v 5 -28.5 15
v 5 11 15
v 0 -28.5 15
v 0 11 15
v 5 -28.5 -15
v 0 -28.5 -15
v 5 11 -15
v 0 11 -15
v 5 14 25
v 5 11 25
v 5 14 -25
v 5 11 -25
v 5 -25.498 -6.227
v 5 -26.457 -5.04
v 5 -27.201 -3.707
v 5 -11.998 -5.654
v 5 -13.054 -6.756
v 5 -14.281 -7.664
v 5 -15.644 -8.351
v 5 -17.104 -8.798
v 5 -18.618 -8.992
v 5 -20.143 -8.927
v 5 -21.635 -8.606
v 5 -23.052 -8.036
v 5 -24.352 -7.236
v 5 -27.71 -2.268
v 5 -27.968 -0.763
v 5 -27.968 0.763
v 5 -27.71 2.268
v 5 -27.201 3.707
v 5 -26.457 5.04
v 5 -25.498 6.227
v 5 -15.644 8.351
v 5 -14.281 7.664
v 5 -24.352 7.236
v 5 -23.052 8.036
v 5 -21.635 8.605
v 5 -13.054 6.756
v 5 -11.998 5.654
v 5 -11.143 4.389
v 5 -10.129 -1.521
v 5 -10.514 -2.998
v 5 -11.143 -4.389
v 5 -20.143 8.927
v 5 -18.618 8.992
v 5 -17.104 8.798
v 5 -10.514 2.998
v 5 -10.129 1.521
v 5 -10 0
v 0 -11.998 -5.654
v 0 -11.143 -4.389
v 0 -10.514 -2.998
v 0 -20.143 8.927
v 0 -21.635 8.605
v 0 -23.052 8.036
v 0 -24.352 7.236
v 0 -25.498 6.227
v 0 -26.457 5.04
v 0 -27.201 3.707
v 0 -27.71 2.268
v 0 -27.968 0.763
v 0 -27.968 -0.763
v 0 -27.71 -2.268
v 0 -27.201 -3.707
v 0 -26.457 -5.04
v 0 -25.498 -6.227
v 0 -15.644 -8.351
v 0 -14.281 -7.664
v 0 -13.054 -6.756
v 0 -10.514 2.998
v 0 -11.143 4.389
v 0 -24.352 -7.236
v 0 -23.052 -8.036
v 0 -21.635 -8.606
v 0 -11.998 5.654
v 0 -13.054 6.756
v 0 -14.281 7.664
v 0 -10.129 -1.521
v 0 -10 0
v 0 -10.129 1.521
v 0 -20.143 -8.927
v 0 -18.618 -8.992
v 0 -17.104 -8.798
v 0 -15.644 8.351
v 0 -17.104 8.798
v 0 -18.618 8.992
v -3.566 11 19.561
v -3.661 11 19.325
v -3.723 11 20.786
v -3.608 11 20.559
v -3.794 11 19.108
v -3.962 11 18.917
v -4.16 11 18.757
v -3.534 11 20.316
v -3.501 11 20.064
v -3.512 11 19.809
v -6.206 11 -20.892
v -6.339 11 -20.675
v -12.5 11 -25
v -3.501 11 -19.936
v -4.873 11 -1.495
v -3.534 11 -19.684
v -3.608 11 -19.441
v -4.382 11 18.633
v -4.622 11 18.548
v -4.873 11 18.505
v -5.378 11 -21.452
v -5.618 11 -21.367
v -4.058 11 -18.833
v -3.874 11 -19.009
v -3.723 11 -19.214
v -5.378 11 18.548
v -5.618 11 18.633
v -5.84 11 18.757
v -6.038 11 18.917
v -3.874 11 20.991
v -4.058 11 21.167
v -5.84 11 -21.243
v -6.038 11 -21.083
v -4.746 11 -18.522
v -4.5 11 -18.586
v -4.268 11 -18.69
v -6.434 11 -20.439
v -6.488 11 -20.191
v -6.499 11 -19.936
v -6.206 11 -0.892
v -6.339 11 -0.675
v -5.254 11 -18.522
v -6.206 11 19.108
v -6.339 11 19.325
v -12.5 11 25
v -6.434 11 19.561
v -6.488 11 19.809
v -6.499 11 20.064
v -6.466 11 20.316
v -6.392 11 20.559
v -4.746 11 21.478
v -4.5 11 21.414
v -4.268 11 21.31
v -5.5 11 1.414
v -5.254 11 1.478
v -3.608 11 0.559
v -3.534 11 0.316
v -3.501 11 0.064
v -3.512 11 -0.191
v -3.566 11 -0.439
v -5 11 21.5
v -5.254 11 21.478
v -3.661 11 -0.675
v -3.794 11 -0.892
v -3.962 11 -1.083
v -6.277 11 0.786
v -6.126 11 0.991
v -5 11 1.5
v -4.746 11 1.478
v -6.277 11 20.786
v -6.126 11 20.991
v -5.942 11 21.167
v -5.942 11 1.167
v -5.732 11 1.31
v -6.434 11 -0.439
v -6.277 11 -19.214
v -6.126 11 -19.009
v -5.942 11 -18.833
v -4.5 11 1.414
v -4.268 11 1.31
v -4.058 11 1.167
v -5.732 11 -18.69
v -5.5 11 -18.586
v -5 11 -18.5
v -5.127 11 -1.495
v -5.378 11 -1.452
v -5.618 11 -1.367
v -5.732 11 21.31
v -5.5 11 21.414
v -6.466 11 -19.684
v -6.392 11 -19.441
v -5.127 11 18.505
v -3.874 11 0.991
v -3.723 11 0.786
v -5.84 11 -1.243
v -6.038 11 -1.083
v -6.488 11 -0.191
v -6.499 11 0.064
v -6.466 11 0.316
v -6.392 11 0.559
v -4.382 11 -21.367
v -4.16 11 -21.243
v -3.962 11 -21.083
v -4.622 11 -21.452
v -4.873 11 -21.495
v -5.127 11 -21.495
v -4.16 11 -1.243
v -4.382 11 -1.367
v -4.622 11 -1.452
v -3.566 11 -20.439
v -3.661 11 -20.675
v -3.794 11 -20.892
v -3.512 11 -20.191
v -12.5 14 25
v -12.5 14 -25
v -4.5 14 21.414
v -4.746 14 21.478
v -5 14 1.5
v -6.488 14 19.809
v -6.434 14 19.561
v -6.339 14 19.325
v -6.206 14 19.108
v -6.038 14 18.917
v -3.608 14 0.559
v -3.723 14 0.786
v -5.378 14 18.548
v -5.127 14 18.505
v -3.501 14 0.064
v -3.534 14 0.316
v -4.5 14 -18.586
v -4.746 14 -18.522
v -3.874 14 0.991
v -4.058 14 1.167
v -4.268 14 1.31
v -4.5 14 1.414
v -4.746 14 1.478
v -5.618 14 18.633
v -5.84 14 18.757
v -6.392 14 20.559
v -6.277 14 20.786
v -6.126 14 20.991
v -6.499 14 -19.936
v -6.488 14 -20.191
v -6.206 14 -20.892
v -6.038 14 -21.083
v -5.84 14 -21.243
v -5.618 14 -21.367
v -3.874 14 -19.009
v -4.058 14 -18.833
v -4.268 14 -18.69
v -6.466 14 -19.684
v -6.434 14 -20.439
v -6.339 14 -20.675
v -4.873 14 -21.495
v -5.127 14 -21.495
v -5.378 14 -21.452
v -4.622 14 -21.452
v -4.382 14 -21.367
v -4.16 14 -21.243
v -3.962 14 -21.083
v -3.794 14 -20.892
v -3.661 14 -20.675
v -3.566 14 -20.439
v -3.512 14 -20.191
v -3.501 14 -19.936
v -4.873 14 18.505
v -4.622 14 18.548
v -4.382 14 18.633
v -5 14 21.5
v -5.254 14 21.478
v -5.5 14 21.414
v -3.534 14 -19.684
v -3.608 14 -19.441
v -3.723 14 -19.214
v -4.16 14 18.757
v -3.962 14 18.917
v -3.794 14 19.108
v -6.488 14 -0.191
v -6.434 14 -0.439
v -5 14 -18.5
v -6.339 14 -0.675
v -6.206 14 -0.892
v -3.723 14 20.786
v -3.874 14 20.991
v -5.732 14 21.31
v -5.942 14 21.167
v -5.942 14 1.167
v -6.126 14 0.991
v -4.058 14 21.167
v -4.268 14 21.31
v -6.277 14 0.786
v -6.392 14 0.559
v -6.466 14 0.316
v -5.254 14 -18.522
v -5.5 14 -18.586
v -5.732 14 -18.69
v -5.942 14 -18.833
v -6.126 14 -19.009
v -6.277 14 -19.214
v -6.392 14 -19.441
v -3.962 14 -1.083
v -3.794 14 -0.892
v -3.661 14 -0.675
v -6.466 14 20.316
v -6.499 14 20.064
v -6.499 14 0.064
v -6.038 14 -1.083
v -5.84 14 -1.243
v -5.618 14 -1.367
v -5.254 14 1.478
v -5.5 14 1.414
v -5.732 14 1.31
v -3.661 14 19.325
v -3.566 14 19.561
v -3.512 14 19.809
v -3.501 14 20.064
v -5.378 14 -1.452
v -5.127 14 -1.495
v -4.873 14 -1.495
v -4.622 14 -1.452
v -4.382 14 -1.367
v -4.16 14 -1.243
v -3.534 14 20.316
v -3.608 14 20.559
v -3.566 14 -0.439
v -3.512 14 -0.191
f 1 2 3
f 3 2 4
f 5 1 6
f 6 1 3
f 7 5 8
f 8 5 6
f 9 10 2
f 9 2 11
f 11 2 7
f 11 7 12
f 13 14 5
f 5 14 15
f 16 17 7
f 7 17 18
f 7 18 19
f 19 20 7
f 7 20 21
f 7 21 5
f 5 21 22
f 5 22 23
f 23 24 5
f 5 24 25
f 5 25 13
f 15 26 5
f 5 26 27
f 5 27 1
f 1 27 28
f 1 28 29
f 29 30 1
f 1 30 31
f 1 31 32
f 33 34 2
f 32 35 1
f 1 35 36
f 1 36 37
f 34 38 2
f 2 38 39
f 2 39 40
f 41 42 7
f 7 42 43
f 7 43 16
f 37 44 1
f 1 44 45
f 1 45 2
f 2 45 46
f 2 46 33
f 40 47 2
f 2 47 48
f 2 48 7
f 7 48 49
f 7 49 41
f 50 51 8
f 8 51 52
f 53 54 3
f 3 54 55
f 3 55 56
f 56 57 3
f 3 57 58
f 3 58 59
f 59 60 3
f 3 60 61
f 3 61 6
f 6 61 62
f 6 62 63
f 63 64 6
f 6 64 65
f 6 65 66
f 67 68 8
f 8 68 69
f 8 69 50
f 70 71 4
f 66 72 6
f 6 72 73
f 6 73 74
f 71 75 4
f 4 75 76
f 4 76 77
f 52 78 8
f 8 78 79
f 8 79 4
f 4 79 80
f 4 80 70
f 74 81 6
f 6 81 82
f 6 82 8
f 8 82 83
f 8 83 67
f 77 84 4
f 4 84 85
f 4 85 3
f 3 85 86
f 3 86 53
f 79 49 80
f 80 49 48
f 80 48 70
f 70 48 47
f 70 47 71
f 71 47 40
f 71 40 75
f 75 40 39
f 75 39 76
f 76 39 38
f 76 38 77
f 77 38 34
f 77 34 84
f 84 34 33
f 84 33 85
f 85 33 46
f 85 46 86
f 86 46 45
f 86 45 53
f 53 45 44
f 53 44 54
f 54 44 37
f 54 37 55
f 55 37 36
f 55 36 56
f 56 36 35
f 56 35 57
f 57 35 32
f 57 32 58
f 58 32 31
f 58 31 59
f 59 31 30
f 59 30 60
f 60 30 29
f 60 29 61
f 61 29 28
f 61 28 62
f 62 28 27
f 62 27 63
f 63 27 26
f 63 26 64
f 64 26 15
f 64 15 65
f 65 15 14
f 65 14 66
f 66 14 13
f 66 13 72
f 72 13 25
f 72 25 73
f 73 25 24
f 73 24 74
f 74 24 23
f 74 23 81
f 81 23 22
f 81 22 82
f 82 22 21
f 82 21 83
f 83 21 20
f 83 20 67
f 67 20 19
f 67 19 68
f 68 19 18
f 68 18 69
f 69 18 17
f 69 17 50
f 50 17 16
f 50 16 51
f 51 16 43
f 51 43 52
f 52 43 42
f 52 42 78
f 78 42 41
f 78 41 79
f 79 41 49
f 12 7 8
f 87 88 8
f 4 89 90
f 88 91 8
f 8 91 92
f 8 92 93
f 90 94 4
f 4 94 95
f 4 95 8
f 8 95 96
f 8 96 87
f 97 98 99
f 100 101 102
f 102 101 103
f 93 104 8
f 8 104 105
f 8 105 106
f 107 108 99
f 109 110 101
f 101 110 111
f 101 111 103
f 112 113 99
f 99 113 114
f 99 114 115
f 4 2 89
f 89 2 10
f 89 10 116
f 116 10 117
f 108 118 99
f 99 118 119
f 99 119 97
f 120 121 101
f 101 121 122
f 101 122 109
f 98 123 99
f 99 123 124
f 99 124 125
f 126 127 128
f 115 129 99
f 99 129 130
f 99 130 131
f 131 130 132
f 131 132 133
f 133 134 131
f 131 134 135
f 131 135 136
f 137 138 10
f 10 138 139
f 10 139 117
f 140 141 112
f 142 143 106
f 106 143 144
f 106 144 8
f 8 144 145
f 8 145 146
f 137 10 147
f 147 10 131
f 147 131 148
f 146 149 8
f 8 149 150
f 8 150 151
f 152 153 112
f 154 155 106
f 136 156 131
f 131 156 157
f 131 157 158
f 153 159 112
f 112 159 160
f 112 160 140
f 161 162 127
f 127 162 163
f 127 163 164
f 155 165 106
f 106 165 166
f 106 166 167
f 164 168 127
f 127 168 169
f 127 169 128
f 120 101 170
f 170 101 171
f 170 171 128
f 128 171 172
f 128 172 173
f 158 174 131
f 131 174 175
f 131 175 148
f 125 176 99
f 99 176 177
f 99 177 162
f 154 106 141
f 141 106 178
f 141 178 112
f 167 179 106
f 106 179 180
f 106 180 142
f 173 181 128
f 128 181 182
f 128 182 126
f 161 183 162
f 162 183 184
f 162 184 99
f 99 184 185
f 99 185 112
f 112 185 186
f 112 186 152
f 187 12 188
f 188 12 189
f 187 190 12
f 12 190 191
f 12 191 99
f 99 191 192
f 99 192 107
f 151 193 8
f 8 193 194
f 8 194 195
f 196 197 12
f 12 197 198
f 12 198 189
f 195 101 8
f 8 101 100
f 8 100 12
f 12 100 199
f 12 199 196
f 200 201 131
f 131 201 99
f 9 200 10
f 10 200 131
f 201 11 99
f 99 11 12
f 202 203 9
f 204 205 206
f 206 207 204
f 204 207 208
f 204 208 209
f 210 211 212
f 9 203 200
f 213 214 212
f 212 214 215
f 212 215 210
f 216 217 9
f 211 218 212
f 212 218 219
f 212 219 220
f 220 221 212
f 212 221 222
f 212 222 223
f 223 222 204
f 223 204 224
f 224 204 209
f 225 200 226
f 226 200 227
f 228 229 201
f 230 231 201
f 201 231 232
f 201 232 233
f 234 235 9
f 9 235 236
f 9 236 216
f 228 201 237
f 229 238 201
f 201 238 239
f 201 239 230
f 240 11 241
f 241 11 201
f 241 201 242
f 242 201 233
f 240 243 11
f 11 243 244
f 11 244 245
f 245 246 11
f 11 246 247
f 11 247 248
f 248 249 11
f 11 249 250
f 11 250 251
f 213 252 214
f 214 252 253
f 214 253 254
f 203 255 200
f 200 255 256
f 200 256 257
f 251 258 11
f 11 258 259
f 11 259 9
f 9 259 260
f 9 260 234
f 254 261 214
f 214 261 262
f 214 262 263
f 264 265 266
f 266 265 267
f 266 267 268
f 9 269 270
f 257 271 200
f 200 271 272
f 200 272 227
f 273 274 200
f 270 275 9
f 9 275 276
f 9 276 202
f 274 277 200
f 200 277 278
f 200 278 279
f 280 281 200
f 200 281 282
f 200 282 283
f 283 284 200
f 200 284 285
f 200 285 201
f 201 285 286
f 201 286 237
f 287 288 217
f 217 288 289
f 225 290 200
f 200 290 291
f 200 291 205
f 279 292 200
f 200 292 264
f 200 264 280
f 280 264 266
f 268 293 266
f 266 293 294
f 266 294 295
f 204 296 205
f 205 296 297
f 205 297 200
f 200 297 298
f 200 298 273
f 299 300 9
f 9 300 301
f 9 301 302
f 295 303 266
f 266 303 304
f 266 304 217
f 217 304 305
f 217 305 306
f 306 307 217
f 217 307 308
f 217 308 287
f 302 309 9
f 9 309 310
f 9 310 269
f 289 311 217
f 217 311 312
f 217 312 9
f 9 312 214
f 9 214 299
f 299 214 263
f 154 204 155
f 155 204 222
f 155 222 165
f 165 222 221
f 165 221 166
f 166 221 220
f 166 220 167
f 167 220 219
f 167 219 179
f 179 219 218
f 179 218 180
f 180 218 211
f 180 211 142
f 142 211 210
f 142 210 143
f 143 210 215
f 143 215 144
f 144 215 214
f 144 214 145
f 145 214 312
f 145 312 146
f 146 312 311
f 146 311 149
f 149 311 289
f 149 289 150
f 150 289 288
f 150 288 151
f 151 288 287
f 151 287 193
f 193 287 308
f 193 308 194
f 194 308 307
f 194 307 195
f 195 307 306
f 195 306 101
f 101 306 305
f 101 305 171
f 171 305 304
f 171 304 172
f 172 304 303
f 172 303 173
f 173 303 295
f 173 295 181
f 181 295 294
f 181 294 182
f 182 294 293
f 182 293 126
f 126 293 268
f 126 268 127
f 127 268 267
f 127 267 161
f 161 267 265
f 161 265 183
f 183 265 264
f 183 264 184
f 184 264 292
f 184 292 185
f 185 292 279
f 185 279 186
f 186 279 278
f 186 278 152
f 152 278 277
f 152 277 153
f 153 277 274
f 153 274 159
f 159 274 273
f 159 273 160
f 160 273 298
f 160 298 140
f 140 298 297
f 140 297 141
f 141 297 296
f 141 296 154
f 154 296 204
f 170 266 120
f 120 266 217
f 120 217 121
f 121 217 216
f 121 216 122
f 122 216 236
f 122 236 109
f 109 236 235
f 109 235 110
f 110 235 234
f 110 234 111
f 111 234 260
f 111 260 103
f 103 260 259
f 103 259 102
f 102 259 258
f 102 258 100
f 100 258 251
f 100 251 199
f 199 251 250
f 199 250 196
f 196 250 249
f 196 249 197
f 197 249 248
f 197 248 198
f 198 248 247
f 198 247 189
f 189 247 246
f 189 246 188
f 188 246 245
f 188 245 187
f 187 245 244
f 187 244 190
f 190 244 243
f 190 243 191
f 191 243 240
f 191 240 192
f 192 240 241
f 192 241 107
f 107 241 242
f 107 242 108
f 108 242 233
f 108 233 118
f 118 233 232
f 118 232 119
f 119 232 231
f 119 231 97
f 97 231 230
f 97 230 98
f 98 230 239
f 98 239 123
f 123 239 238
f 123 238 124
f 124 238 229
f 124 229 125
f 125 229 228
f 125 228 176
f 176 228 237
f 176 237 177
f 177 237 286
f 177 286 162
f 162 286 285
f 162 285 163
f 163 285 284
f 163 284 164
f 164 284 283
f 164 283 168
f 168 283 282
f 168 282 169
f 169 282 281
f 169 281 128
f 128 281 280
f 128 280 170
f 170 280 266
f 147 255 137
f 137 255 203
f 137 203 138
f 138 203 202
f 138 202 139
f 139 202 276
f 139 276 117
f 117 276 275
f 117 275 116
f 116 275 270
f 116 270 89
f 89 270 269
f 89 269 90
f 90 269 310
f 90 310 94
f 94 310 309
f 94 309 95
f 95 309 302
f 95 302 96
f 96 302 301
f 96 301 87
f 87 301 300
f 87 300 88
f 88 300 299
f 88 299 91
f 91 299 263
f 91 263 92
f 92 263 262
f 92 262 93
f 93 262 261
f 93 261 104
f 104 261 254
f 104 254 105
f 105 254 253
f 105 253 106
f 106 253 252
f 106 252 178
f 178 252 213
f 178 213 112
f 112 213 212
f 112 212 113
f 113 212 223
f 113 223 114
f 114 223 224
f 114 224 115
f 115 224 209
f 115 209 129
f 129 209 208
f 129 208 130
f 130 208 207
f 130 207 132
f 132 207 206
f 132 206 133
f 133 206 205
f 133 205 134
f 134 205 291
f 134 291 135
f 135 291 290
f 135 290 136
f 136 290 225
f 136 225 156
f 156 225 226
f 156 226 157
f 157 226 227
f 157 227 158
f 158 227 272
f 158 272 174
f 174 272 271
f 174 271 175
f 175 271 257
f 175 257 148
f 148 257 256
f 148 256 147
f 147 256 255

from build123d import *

# Parameters (mm, degrees)
SKETCH_1_W          = 30
SKETCH_1_H          = 39.5
EXTRUDE_1_DEPTH     = 5
SKETCH_2_R          = 9
CUT_EXTRUDE_1_DEPTH = 5
SKETCH_3_W          = 17.5
SKETCH_3_H          = 50
EXTRUDE_2_DEPTH     = 3
SKETCH_6_R          = 1.5
CUT_EXTRUDE_2_DEPTH = 3


with BuildPart() as part:
    # 草图1 → 凸台-拉伸1 (new body)
    with BuildSketch(Plane(origin=(0, 0, 0), x_dir=(0, 0, -1), z_dir=(1, 0, 0))):
        with Locations((0, -8.75)):
            Rectangle(SKETCH_1_W, SKETCH_1_H)
    extrude(amount=EXTRUDE_1_DEPTH)

    # 草图2 → 切除-拉伸1 (cut)
    with BuildSketch(Plane(origin=(5, 0, 0), x_dir=(0, 0, -1), z_dir=(1, 0, 0))):
        with Locations(Location((0, -19, 0), (0, 0, 90))):
            Circle(SKETCH_2_R)
    extrude(amount=-CUT_EXTRUDE_1_DEPTH, mode=Mode.SUBTRACT)

    # 草图3 → 凸台-拉伸2 (add)
    with BuildSketch(Plane(origin=(0, 11, 0), x_dir=(1, 0, 0), z_dir=(0, 1, 0))):
        with Locations((-3.75, 0)):
            Rectangle(SKETCH_3_W, SKETCH_3_H)
    extrude(amount=EXTRUDE_2_DEPTH)

    # 草图6 → 切除-拉伸2 (cut)
    with BuildSketch(Plane(origin=(0, 14, 0), x_dir=(1, 0, 0), z_dir=(0, 1, 0))):
        with Locations(Location((-5, 0, 0), (0, 0, 270))):
            Circle(SKETCH_6_R)
        with Locations(Location((-5, 20, 0), (0, 0, 270))):
            Circle(SKETCH_6_R)
        with Locations(Location((-5, -20, 0), (0, 0, 270))):
            Circle(SKETCH_6_R)
    extrude(amount=-CUT_EXTRUDE_2_DEPTH, mode=Mode.SUBTRACT)


solid = part.part
